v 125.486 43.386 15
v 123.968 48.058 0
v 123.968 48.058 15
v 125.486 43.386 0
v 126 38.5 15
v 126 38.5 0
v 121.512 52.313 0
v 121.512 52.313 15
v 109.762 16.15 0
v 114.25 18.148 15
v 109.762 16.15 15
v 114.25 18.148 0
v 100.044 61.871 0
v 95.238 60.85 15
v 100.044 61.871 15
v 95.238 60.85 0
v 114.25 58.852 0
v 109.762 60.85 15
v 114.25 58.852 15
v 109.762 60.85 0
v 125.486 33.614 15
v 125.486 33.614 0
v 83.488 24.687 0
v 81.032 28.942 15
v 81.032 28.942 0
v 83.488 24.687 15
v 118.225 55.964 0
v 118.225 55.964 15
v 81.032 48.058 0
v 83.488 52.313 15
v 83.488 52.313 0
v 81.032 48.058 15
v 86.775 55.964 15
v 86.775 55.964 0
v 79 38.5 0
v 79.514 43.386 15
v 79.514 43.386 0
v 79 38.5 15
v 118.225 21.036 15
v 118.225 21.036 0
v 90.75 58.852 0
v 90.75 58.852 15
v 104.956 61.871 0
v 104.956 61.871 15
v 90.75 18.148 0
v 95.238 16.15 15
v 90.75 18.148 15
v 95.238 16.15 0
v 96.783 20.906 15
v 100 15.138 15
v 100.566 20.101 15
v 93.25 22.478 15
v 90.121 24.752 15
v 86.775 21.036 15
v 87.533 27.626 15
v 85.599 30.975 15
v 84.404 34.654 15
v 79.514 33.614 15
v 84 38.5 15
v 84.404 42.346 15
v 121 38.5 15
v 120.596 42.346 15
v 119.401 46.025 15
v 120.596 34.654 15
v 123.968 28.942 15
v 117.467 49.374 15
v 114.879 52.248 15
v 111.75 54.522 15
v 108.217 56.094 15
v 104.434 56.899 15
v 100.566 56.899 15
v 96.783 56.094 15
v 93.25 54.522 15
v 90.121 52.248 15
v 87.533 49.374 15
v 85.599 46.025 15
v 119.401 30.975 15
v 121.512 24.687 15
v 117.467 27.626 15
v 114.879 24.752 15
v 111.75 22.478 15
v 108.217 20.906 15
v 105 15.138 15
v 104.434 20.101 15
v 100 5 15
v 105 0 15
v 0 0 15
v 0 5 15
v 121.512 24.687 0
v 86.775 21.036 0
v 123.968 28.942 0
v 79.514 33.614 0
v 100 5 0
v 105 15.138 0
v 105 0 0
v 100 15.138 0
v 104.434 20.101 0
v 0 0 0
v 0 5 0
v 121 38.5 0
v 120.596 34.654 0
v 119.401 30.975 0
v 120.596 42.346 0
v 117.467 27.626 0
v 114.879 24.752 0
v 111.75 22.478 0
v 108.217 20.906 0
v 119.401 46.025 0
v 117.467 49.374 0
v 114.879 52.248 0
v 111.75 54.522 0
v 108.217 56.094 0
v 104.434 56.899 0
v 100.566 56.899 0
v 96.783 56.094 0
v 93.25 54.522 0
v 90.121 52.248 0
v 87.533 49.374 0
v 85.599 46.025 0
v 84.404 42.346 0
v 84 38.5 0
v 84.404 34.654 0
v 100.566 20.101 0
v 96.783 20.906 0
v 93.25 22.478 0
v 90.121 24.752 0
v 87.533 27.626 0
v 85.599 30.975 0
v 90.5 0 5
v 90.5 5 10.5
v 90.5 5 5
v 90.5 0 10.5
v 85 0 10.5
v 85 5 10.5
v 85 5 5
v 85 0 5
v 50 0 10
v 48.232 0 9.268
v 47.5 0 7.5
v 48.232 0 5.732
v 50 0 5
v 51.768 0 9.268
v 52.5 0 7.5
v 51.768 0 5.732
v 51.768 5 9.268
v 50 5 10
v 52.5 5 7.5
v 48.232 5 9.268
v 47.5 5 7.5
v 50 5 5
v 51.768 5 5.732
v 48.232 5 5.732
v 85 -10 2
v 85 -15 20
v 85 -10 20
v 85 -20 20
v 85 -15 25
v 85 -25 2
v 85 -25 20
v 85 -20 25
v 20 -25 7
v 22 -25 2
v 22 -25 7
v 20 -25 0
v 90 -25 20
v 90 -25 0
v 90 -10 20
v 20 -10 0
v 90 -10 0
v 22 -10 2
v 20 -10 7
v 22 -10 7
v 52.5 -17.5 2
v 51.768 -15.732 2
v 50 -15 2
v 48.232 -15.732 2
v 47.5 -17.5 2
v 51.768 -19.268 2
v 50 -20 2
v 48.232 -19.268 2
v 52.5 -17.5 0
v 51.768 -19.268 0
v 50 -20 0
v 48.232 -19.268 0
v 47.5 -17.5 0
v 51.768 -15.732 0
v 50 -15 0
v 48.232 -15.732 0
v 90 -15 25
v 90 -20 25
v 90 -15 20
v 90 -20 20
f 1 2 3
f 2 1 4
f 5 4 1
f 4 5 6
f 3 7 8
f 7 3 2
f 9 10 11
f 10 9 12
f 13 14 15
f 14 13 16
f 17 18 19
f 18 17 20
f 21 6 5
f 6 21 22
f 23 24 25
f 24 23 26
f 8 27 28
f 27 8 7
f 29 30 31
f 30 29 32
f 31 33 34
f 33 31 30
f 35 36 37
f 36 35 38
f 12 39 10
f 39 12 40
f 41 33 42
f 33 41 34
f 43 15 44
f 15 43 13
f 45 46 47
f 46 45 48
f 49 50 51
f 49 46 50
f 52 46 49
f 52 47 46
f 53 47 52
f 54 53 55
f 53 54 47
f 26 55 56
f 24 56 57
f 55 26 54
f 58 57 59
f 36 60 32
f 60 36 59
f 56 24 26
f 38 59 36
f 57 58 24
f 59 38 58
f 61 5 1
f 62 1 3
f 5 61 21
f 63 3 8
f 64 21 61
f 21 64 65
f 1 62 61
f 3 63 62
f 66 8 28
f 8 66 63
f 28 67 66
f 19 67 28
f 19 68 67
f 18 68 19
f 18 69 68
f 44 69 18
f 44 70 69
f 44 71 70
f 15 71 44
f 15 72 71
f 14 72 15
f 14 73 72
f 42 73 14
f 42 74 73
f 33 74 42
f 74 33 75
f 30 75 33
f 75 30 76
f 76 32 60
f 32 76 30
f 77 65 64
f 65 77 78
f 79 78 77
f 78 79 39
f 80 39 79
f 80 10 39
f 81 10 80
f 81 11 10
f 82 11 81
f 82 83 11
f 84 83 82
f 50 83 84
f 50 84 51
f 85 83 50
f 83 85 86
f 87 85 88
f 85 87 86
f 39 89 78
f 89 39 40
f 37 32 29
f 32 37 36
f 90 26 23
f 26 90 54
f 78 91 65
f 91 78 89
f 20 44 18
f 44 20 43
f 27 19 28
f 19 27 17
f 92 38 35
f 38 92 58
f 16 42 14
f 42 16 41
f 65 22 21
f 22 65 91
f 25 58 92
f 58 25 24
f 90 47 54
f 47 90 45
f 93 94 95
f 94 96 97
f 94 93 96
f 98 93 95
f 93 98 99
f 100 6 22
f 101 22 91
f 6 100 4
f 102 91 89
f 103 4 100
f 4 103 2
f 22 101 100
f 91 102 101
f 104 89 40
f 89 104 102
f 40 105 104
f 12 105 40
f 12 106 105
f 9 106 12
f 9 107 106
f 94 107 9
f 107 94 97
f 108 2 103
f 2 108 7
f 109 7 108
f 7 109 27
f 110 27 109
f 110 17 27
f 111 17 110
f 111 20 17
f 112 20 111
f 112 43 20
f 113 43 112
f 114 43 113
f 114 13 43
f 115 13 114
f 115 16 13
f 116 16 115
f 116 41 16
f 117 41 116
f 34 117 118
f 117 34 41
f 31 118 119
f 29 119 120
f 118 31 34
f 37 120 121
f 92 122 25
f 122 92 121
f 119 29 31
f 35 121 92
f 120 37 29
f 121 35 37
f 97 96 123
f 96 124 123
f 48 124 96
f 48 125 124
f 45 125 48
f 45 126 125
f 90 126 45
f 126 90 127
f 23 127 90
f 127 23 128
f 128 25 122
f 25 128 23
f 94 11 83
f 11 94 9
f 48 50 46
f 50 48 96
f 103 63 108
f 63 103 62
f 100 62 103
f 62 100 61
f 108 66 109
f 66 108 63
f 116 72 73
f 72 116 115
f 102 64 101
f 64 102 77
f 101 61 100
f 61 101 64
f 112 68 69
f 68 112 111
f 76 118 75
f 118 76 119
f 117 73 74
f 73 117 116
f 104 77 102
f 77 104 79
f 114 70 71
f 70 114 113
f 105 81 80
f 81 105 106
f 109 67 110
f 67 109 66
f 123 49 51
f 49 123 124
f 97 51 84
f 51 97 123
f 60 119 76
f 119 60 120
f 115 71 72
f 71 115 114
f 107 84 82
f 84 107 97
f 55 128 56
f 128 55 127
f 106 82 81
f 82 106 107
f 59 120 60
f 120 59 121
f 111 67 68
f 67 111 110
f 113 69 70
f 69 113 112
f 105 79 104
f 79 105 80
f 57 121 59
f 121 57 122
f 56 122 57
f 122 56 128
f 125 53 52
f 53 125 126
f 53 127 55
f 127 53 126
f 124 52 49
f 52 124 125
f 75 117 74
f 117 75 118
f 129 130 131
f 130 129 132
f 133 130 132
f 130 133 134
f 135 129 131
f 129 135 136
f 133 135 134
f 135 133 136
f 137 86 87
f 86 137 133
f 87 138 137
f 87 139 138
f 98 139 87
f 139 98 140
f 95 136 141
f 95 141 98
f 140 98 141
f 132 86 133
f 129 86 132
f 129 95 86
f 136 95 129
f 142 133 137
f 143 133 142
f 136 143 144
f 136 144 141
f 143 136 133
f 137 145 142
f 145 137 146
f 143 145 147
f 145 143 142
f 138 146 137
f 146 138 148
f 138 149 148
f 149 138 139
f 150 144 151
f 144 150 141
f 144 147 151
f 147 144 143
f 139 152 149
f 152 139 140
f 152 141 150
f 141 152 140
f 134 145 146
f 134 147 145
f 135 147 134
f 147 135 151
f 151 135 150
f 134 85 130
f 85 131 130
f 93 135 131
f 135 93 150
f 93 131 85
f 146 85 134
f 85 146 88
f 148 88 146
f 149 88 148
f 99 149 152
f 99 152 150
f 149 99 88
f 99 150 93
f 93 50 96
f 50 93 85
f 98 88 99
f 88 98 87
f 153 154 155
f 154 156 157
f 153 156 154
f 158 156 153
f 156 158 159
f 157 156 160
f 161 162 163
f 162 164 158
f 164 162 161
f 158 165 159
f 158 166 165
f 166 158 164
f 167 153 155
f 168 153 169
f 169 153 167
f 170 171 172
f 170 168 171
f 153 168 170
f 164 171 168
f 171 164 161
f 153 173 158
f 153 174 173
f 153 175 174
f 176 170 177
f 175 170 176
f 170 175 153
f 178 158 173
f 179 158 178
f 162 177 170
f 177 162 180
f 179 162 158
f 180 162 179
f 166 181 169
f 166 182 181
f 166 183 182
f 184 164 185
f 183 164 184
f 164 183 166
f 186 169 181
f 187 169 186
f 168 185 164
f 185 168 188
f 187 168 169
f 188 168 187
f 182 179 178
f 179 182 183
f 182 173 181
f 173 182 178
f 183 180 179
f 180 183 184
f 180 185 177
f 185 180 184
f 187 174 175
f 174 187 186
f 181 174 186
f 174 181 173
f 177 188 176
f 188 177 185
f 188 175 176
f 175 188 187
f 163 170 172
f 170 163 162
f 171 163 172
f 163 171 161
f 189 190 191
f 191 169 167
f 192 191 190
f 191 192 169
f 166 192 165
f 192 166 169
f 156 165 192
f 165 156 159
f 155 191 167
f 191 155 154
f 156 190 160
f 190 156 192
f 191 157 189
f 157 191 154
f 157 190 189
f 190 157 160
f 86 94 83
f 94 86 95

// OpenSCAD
// Drzak teplomeru do plastoveho okna 
// Thermometer holder to plastic window
// need two same parts - top and bootom holder is identical
// vyska drzaku
hh1=15;
// vnitrni prumer drzaku teplomeru
dht = 37;
// sirka steny
hwidth = 5;
pwidth = 2;
// delka drzaku
lhold = 100;
// odsun kolecka od konce zakladu drzaku
lh2 = 20;
// posun operky od konce zakladu drzaku
lpos = 15;
// odsun diry pro sroubek - musi byt vic nez lh2
lh1 = 50;
// prumer diry pro sroubek
dsr = 5;
// zdvih druheho dilu
lh3 = 7;

translate([lhold+hwidth/2,lh2+dht/2,0])
   difference()
   {
    cylinder(h=hh1, r=(dht/2+hwidth));
    cylinder(h=hh1, r=dht/2);   
   }
difference()
  { 
   cube([lhold,hwidth,hh1]);
   union()
   {
    translate([lhold-lpos,0,hh1/2-hh1/6]) cube([hwidth*1.1,hwidth*1.1,(hh1/3)*1.1]);
    translate([lhold-lh1,hwidth,hh1/2]) rotate([90,0,0]) cylinder(h=hwidth,d=dsr);
   }   
  }
translate([lhold,0,0]) cube([hwidth,lh2,hh1]);  
  
// druhy dil
translate([0, -10, 0])
rotate([90,0,0]) {
 translate([20,0,0]) difference() {   
    cube([lhold-lpos-20,pwidth,hh1]);
    translate([lhold-lh1-20,pwidth,hh1/2]) rotate([90,0,0]) cylinder(h=pwidth,d=dsr);
    } 
 translate([20,0,0]) cube([pwidth,lh3,hh1]);     
 translate([lhold-lpos,0,0]) cube([hwidth,20,hh1]); 
 // zobacek pro zasazeni    
 translate([lhold-lpos,20,hh1/2-hh1/6]) cube([hwidth,hwidth,hh1/3]);   
}  
